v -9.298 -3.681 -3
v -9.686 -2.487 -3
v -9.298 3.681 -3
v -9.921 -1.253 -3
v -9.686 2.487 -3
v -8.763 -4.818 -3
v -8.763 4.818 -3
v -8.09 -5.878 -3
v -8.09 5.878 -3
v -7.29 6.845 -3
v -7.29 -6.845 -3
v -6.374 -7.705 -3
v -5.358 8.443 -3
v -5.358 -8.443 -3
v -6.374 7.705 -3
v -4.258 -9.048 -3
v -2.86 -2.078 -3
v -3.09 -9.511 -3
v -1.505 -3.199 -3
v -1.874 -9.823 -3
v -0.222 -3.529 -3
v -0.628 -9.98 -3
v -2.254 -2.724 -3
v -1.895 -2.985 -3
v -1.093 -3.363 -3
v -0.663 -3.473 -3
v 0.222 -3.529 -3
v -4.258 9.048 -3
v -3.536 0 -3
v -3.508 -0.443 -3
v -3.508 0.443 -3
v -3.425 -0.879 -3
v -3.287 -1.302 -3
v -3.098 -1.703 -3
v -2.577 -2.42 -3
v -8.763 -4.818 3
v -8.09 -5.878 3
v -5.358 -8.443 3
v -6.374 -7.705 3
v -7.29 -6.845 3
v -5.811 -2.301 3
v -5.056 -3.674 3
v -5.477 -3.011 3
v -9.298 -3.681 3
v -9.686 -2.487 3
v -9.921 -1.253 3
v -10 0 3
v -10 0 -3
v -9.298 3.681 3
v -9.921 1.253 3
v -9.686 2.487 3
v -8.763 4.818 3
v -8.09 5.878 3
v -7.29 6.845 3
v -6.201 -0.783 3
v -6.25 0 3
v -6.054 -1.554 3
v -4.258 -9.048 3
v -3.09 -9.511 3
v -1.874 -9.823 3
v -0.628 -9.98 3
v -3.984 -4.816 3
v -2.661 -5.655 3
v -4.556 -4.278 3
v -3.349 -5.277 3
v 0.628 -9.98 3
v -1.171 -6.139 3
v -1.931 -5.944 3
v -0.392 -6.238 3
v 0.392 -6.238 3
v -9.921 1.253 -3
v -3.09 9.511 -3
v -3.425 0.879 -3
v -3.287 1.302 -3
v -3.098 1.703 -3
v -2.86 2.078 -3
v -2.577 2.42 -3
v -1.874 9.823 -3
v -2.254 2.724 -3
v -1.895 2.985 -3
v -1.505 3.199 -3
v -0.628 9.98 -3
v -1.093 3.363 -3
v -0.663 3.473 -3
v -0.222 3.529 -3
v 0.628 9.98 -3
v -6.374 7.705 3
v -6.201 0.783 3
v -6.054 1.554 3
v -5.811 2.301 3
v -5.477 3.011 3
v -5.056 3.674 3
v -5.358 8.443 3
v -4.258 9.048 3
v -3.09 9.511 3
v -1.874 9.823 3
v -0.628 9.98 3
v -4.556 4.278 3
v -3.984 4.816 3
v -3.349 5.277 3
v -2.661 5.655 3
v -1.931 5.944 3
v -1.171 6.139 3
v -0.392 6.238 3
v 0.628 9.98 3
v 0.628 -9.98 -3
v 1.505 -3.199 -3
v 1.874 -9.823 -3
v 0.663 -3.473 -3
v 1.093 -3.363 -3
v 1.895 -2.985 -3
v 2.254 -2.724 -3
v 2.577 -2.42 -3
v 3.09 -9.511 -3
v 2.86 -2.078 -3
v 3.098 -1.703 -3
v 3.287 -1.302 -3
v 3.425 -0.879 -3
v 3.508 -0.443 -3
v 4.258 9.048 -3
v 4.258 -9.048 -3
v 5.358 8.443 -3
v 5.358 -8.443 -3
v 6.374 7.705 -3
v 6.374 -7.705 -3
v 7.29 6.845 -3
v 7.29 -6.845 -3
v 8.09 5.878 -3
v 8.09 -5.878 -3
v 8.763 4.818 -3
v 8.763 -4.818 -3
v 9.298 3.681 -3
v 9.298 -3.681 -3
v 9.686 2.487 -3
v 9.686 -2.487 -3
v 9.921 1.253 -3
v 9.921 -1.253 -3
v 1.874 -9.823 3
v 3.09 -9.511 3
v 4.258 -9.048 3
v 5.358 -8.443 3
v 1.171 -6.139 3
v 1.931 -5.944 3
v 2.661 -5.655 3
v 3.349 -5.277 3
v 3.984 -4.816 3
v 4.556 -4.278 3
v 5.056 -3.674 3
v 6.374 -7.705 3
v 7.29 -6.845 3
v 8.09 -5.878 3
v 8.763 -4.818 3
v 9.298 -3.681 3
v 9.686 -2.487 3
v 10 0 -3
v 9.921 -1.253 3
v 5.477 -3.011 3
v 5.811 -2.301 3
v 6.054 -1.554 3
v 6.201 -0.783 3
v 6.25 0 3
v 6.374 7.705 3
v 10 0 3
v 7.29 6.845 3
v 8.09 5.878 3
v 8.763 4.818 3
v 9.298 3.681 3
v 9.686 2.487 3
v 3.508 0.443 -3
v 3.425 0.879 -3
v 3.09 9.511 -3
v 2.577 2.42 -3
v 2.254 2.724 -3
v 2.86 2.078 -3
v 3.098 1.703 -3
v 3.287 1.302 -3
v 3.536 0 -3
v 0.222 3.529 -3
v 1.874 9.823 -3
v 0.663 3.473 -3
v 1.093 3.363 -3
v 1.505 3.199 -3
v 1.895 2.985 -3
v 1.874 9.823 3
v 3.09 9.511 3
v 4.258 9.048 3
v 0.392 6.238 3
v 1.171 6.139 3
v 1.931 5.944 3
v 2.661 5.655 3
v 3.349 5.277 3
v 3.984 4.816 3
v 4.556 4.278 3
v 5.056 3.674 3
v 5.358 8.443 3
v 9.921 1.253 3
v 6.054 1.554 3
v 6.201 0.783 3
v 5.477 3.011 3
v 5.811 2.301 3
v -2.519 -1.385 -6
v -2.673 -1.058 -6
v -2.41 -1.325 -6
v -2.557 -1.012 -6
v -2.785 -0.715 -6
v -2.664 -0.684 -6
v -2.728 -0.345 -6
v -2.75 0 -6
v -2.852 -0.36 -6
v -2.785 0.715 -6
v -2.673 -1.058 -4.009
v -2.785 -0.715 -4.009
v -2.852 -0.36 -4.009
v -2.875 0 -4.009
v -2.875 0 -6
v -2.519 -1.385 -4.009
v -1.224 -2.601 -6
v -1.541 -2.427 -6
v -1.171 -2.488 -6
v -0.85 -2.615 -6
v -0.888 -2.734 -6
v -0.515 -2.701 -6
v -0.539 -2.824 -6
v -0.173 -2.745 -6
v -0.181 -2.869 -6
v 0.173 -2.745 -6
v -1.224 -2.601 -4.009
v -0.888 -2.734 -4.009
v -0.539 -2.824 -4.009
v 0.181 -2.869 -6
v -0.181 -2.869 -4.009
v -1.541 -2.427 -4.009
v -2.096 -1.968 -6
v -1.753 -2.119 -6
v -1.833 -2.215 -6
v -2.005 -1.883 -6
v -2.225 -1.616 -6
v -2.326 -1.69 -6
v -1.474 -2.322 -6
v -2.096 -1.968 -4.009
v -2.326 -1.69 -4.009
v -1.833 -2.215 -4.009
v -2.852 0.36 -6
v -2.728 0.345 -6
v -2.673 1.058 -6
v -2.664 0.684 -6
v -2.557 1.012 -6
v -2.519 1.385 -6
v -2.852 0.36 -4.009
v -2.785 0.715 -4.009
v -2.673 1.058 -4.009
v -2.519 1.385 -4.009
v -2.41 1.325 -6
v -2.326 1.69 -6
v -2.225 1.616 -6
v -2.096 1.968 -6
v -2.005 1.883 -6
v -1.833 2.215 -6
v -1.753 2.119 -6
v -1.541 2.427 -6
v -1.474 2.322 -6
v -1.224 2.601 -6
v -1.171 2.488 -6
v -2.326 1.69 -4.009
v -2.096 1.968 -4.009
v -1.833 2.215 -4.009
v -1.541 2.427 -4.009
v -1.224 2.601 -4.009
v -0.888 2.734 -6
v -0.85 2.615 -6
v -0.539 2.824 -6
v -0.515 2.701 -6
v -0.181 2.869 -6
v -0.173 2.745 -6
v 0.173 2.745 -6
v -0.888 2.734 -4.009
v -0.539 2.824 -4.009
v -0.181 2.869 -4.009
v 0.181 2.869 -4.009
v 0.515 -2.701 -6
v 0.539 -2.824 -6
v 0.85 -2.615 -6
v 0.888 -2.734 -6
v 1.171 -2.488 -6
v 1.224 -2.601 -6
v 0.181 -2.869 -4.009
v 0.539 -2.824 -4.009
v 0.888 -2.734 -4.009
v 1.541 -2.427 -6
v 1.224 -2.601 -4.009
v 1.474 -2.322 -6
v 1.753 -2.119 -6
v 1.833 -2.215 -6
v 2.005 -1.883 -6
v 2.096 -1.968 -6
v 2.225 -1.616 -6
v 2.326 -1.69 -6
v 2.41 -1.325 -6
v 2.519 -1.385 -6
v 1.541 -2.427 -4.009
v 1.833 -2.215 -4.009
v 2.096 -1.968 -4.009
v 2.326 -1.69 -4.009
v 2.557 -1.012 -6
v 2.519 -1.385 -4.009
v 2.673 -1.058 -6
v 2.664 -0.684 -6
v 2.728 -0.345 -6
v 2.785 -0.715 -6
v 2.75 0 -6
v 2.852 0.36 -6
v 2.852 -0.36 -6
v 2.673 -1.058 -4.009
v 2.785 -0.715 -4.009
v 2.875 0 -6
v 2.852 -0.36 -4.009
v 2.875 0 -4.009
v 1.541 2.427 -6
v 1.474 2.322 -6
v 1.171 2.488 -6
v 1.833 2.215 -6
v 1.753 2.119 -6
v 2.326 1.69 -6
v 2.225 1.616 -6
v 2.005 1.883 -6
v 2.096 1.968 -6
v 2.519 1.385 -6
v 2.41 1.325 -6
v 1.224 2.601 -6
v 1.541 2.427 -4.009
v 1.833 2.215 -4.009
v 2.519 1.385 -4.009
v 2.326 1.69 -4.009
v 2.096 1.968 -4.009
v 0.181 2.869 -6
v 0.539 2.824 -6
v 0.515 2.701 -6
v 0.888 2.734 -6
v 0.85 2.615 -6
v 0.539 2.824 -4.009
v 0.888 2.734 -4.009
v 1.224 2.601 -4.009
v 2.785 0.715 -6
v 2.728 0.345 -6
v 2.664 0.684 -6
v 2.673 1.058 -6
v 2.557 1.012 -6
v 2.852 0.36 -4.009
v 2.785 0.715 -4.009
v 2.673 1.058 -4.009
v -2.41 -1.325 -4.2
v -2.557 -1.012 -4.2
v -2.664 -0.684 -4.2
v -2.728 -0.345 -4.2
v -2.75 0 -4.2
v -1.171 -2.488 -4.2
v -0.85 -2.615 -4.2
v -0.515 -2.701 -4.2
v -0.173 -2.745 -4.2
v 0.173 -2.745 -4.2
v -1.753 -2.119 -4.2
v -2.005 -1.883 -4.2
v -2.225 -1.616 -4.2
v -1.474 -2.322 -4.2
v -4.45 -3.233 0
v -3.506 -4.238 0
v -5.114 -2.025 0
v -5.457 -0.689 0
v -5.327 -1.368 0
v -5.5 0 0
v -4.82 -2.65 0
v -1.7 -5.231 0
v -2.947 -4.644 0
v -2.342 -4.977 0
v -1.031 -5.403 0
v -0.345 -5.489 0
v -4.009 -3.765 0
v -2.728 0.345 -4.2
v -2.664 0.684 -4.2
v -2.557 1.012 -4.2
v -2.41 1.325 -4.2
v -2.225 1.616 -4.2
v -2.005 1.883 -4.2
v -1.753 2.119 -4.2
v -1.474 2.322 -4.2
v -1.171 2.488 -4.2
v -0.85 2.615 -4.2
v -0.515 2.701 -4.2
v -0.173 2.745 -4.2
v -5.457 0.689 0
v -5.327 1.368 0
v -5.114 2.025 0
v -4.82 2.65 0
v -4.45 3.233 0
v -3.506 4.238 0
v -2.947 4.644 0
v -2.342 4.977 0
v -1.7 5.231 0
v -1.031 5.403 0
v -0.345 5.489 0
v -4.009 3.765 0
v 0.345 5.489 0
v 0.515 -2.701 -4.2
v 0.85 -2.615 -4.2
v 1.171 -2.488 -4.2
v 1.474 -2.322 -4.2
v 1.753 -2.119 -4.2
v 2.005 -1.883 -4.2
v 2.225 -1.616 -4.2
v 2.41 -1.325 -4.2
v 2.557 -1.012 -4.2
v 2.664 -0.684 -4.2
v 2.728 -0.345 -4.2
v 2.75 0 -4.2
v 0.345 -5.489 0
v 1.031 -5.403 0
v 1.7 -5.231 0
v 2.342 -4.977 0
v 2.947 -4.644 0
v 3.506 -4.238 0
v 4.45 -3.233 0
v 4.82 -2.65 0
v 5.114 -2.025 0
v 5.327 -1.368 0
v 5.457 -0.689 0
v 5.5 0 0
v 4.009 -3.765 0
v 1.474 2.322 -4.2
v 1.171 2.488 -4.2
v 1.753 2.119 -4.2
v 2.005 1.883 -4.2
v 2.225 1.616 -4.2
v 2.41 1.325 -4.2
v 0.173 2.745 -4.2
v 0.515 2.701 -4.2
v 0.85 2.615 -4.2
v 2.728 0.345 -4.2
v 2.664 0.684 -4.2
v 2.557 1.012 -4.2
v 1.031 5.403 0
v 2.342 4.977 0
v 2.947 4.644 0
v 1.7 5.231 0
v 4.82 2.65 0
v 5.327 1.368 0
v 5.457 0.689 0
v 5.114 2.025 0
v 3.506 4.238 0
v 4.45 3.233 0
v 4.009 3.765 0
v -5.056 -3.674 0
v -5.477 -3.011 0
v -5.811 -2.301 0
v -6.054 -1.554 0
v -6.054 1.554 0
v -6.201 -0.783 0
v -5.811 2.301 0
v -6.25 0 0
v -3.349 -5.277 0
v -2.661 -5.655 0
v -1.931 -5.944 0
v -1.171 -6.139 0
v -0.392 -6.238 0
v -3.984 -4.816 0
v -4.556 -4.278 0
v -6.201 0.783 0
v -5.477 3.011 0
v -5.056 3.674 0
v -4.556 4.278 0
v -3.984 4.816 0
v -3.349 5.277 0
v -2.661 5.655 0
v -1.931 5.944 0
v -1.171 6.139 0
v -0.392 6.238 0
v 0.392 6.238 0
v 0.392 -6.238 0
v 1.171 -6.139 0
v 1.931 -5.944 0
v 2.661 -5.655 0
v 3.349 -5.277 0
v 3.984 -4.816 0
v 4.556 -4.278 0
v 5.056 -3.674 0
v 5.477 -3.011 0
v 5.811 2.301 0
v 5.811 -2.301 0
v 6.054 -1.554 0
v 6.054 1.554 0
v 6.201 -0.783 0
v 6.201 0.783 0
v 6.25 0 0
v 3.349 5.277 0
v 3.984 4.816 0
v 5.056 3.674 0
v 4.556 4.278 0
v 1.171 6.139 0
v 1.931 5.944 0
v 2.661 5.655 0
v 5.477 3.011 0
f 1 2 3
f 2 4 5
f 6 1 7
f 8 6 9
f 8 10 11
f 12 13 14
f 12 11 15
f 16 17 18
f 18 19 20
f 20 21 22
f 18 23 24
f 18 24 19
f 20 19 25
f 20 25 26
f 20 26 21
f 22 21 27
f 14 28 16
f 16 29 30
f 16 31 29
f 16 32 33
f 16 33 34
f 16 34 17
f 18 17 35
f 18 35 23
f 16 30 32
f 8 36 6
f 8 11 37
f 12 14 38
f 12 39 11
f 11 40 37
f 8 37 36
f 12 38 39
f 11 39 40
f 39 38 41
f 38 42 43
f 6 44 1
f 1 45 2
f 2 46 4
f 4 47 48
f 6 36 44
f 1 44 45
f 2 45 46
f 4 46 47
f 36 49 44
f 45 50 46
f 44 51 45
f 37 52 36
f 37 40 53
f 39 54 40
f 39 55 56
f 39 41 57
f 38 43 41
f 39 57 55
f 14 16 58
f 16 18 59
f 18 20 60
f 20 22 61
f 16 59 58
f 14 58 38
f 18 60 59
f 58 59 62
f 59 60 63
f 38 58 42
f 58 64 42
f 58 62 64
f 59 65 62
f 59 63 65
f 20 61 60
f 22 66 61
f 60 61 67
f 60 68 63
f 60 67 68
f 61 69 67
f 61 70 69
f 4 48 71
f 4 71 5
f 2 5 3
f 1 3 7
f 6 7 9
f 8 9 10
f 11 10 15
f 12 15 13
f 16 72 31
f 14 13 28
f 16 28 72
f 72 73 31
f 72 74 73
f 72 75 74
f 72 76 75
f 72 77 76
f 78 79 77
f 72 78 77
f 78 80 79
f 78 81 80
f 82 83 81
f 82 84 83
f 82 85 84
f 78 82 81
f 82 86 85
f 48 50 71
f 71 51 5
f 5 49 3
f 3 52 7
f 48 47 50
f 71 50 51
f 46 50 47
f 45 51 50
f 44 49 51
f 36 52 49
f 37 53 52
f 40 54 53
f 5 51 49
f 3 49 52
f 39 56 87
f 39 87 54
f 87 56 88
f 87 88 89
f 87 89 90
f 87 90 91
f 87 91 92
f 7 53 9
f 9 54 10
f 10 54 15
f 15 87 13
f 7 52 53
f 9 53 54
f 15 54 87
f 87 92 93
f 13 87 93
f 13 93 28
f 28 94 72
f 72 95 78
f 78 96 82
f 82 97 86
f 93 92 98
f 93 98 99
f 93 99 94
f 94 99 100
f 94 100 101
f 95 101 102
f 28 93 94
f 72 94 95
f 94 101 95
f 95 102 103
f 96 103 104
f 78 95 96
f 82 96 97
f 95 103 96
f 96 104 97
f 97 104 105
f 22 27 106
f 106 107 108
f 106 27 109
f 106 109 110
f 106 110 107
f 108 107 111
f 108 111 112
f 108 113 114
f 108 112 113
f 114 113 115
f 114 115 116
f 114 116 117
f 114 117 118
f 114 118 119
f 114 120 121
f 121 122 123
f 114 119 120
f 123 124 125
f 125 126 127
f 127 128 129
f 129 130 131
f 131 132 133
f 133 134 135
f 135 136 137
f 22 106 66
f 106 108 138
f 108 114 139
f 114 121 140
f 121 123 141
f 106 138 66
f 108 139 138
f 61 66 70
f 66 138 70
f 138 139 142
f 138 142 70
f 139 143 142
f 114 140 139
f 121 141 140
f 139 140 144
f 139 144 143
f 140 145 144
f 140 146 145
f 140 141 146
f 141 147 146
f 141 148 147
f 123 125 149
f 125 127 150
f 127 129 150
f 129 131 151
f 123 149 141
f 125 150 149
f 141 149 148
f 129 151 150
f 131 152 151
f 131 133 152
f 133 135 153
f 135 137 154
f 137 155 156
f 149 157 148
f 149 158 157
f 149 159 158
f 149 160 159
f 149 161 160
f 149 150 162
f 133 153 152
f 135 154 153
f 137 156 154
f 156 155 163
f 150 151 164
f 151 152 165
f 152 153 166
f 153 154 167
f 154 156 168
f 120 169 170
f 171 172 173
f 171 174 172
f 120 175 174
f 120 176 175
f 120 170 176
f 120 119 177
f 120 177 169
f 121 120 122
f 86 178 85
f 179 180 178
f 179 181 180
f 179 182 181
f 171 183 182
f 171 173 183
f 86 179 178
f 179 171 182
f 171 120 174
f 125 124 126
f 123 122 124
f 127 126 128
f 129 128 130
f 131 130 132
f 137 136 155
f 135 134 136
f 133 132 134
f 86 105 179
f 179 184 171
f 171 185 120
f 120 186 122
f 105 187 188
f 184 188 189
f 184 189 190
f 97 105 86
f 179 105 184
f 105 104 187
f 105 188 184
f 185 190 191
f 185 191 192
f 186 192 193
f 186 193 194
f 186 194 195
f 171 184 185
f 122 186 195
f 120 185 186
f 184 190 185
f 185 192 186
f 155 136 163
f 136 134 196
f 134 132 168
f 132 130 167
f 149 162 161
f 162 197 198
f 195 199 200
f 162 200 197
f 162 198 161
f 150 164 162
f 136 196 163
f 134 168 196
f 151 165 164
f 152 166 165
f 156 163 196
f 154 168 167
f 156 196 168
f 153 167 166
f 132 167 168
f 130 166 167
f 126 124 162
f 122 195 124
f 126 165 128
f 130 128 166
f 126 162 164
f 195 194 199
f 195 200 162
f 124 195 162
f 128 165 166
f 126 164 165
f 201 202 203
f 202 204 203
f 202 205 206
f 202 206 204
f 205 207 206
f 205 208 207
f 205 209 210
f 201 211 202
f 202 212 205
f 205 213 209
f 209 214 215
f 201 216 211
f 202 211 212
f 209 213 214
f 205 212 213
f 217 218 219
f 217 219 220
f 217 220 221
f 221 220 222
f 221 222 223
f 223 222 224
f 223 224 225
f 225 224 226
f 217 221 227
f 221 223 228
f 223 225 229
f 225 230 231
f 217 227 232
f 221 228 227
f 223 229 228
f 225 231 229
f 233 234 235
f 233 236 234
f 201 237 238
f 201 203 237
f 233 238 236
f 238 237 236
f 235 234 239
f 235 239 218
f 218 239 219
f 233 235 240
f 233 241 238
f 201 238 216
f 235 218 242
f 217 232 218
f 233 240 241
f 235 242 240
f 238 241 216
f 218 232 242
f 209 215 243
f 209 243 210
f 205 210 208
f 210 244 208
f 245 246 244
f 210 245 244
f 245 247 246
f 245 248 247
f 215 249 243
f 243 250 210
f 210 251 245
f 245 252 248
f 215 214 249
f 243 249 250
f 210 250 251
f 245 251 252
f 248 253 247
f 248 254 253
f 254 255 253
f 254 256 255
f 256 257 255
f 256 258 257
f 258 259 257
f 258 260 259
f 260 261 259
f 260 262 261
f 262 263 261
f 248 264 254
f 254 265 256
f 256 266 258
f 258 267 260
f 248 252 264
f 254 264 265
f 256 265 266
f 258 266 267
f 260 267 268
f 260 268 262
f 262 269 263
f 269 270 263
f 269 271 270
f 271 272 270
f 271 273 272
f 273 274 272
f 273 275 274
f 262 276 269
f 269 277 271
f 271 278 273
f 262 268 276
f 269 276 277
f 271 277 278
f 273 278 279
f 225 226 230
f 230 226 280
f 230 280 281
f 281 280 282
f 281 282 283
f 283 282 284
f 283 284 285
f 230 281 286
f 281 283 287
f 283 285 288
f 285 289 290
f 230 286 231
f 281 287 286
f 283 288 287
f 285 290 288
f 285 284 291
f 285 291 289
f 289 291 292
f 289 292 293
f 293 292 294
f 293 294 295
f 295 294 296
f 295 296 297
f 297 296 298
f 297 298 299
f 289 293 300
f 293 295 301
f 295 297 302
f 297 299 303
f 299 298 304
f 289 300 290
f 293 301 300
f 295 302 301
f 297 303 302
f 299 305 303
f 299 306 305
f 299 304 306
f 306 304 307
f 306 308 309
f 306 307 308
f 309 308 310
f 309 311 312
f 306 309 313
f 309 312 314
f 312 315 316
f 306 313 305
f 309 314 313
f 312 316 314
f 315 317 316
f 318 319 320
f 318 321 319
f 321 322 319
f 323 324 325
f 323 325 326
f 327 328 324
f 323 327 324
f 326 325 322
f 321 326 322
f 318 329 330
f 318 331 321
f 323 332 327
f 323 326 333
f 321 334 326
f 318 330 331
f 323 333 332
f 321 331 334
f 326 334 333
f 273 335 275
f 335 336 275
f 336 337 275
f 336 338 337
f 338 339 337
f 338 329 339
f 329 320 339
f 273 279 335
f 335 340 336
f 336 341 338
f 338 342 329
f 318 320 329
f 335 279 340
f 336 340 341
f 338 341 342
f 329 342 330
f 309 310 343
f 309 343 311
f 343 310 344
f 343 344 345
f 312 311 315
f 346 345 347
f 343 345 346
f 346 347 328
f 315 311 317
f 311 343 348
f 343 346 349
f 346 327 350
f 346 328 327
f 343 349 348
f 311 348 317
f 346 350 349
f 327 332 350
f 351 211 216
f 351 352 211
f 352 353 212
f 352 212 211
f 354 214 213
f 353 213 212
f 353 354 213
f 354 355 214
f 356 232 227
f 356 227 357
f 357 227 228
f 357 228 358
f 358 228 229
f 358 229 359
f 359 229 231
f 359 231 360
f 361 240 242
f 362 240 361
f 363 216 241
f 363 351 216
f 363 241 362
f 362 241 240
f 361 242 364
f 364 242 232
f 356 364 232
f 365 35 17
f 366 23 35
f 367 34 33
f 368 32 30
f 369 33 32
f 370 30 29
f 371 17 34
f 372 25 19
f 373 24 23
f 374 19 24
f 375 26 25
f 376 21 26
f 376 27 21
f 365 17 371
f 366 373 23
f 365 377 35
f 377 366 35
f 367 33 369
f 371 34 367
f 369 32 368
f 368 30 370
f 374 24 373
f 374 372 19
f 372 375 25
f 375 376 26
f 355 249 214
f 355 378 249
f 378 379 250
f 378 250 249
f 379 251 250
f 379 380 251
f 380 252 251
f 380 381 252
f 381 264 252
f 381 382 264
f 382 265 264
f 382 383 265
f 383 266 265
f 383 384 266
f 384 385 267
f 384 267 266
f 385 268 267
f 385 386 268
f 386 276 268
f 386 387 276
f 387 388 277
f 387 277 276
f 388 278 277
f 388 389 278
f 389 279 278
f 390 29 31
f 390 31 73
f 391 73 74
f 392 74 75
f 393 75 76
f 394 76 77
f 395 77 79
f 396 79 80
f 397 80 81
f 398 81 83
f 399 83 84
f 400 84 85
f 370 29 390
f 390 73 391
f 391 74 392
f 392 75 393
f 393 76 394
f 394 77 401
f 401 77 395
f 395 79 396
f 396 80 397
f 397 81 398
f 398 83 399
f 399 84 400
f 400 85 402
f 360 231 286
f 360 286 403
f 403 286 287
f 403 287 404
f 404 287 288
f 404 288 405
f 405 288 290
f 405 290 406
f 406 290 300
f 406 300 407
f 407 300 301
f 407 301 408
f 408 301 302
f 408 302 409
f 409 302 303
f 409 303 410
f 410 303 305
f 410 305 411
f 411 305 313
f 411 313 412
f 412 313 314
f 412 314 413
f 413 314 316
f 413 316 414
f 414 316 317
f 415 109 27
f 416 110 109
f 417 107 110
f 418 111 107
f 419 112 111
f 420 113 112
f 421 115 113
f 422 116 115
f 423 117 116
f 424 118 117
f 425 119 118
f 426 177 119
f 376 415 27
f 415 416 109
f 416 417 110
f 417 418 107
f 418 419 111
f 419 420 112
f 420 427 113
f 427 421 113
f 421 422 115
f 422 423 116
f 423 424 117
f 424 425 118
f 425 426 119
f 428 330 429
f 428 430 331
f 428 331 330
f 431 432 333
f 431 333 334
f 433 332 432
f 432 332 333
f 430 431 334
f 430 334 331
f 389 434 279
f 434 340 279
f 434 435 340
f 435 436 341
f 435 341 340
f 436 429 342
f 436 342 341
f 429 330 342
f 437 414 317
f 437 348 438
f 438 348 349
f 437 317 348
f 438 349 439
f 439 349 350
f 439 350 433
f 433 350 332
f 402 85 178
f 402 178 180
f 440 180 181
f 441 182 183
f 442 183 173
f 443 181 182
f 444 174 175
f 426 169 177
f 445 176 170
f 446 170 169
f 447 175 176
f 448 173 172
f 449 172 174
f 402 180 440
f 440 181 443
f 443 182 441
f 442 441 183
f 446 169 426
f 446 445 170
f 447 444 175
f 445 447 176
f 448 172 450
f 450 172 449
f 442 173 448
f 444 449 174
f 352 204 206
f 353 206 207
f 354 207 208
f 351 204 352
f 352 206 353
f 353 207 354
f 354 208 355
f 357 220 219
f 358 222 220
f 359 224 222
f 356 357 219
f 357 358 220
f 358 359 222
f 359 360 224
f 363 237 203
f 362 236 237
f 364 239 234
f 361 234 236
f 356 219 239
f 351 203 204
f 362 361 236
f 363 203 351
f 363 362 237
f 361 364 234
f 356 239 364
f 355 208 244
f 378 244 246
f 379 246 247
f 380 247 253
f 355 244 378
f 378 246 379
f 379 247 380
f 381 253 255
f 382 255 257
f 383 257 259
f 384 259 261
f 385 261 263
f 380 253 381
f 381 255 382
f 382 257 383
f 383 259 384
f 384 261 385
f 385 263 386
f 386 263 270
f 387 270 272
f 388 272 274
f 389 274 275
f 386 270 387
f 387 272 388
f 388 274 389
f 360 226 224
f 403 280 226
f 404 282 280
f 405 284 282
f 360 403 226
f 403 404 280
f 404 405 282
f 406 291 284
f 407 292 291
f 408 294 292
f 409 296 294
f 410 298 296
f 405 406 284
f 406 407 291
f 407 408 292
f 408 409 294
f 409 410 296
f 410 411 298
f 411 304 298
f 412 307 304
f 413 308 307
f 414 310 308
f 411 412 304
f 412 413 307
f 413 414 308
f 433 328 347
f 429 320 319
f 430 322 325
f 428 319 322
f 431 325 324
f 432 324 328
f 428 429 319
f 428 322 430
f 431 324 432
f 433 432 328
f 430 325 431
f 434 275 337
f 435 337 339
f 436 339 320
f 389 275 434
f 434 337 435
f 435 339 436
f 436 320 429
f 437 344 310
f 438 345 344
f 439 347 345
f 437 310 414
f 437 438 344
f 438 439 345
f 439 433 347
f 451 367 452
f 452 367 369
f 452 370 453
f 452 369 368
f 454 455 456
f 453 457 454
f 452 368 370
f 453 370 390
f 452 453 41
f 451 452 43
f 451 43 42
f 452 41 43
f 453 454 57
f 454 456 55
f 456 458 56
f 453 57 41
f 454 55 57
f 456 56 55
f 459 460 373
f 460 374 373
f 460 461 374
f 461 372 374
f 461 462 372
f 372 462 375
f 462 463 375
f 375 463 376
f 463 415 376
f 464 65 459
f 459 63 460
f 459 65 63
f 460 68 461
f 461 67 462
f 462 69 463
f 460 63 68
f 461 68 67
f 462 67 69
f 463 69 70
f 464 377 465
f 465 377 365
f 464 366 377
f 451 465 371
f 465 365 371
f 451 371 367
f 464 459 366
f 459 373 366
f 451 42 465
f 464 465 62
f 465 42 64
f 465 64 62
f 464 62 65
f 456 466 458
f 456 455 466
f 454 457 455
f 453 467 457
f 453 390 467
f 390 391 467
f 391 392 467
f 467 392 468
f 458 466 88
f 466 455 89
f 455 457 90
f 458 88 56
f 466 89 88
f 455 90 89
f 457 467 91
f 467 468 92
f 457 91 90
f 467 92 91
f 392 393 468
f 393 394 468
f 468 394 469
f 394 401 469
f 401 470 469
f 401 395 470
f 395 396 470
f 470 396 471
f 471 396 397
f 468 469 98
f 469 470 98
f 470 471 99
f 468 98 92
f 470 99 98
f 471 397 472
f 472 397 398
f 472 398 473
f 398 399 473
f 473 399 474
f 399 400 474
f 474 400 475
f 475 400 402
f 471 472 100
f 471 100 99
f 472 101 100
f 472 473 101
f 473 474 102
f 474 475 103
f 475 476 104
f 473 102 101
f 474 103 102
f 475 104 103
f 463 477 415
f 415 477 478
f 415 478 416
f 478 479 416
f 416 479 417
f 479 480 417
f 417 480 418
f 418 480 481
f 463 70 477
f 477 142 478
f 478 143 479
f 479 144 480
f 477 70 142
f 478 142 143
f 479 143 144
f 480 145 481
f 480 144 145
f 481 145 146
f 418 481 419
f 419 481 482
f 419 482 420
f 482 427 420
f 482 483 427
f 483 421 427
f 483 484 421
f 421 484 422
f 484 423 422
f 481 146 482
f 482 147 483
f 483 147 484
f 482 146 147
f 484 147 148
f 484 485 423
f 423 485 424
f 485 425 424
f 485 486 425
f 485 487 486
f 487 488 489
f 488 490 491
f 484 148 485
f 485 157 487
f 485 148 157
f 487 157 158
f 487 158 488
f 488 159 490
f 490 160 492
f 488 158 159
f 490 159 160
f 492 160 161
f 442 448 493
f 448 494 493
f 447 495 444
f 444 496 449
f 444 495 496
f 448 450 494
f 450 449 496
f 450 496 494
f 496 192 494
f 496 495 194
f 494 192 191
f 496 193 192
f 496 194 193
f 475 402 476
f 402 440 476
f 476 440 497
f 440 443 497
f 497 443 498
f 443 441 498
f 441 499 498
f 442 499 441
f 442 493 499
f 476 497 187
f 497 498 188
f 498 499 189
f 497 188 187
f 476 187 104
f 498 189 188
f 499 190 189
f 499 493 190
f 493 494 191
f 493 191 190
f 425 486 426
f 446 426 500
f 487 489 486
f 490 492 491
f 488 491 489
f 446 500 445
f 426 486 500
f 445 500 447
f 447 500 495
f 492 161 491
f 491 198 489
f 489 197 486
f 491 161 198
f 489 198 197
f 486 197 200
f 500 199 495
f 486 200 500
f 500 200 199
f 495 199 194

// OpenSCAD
$fn = 50;

difference() {
	union() {
		translate(v = [0, 0, -3.0]) {
			cylinder(h = 6, r = 10.0);
		}
		#translate(v = [0, 0, -6.0]) {
			cylinder(h = 6, r = 2.875);
		}
	}
	union() {
		translate(v = [0, 0, 0]) {
			rotate(a = [0, 0, 0]) {
				difference() {
					union() {
						translate(v = [0, 0, -6.0]) {
							cylinder(h = 6, r = 2.25);
						}
						translate(v = [0, 0, -4.2]) {
							cylinder(h = 4.2, r1 = 2.75, r2 = 5.5);
						}
						translate(v = [0, 0, -6.0]) {
							cylinder(h = 6, r = 2.75);
						}
						translate(v = [0, 0, -6.0]) {
							cylinder(h = 6, r = 2.25);
						}
					}
					union();
				}
			}
		}
		#cylinder(h = 3, r = 6.25);
	}
}
